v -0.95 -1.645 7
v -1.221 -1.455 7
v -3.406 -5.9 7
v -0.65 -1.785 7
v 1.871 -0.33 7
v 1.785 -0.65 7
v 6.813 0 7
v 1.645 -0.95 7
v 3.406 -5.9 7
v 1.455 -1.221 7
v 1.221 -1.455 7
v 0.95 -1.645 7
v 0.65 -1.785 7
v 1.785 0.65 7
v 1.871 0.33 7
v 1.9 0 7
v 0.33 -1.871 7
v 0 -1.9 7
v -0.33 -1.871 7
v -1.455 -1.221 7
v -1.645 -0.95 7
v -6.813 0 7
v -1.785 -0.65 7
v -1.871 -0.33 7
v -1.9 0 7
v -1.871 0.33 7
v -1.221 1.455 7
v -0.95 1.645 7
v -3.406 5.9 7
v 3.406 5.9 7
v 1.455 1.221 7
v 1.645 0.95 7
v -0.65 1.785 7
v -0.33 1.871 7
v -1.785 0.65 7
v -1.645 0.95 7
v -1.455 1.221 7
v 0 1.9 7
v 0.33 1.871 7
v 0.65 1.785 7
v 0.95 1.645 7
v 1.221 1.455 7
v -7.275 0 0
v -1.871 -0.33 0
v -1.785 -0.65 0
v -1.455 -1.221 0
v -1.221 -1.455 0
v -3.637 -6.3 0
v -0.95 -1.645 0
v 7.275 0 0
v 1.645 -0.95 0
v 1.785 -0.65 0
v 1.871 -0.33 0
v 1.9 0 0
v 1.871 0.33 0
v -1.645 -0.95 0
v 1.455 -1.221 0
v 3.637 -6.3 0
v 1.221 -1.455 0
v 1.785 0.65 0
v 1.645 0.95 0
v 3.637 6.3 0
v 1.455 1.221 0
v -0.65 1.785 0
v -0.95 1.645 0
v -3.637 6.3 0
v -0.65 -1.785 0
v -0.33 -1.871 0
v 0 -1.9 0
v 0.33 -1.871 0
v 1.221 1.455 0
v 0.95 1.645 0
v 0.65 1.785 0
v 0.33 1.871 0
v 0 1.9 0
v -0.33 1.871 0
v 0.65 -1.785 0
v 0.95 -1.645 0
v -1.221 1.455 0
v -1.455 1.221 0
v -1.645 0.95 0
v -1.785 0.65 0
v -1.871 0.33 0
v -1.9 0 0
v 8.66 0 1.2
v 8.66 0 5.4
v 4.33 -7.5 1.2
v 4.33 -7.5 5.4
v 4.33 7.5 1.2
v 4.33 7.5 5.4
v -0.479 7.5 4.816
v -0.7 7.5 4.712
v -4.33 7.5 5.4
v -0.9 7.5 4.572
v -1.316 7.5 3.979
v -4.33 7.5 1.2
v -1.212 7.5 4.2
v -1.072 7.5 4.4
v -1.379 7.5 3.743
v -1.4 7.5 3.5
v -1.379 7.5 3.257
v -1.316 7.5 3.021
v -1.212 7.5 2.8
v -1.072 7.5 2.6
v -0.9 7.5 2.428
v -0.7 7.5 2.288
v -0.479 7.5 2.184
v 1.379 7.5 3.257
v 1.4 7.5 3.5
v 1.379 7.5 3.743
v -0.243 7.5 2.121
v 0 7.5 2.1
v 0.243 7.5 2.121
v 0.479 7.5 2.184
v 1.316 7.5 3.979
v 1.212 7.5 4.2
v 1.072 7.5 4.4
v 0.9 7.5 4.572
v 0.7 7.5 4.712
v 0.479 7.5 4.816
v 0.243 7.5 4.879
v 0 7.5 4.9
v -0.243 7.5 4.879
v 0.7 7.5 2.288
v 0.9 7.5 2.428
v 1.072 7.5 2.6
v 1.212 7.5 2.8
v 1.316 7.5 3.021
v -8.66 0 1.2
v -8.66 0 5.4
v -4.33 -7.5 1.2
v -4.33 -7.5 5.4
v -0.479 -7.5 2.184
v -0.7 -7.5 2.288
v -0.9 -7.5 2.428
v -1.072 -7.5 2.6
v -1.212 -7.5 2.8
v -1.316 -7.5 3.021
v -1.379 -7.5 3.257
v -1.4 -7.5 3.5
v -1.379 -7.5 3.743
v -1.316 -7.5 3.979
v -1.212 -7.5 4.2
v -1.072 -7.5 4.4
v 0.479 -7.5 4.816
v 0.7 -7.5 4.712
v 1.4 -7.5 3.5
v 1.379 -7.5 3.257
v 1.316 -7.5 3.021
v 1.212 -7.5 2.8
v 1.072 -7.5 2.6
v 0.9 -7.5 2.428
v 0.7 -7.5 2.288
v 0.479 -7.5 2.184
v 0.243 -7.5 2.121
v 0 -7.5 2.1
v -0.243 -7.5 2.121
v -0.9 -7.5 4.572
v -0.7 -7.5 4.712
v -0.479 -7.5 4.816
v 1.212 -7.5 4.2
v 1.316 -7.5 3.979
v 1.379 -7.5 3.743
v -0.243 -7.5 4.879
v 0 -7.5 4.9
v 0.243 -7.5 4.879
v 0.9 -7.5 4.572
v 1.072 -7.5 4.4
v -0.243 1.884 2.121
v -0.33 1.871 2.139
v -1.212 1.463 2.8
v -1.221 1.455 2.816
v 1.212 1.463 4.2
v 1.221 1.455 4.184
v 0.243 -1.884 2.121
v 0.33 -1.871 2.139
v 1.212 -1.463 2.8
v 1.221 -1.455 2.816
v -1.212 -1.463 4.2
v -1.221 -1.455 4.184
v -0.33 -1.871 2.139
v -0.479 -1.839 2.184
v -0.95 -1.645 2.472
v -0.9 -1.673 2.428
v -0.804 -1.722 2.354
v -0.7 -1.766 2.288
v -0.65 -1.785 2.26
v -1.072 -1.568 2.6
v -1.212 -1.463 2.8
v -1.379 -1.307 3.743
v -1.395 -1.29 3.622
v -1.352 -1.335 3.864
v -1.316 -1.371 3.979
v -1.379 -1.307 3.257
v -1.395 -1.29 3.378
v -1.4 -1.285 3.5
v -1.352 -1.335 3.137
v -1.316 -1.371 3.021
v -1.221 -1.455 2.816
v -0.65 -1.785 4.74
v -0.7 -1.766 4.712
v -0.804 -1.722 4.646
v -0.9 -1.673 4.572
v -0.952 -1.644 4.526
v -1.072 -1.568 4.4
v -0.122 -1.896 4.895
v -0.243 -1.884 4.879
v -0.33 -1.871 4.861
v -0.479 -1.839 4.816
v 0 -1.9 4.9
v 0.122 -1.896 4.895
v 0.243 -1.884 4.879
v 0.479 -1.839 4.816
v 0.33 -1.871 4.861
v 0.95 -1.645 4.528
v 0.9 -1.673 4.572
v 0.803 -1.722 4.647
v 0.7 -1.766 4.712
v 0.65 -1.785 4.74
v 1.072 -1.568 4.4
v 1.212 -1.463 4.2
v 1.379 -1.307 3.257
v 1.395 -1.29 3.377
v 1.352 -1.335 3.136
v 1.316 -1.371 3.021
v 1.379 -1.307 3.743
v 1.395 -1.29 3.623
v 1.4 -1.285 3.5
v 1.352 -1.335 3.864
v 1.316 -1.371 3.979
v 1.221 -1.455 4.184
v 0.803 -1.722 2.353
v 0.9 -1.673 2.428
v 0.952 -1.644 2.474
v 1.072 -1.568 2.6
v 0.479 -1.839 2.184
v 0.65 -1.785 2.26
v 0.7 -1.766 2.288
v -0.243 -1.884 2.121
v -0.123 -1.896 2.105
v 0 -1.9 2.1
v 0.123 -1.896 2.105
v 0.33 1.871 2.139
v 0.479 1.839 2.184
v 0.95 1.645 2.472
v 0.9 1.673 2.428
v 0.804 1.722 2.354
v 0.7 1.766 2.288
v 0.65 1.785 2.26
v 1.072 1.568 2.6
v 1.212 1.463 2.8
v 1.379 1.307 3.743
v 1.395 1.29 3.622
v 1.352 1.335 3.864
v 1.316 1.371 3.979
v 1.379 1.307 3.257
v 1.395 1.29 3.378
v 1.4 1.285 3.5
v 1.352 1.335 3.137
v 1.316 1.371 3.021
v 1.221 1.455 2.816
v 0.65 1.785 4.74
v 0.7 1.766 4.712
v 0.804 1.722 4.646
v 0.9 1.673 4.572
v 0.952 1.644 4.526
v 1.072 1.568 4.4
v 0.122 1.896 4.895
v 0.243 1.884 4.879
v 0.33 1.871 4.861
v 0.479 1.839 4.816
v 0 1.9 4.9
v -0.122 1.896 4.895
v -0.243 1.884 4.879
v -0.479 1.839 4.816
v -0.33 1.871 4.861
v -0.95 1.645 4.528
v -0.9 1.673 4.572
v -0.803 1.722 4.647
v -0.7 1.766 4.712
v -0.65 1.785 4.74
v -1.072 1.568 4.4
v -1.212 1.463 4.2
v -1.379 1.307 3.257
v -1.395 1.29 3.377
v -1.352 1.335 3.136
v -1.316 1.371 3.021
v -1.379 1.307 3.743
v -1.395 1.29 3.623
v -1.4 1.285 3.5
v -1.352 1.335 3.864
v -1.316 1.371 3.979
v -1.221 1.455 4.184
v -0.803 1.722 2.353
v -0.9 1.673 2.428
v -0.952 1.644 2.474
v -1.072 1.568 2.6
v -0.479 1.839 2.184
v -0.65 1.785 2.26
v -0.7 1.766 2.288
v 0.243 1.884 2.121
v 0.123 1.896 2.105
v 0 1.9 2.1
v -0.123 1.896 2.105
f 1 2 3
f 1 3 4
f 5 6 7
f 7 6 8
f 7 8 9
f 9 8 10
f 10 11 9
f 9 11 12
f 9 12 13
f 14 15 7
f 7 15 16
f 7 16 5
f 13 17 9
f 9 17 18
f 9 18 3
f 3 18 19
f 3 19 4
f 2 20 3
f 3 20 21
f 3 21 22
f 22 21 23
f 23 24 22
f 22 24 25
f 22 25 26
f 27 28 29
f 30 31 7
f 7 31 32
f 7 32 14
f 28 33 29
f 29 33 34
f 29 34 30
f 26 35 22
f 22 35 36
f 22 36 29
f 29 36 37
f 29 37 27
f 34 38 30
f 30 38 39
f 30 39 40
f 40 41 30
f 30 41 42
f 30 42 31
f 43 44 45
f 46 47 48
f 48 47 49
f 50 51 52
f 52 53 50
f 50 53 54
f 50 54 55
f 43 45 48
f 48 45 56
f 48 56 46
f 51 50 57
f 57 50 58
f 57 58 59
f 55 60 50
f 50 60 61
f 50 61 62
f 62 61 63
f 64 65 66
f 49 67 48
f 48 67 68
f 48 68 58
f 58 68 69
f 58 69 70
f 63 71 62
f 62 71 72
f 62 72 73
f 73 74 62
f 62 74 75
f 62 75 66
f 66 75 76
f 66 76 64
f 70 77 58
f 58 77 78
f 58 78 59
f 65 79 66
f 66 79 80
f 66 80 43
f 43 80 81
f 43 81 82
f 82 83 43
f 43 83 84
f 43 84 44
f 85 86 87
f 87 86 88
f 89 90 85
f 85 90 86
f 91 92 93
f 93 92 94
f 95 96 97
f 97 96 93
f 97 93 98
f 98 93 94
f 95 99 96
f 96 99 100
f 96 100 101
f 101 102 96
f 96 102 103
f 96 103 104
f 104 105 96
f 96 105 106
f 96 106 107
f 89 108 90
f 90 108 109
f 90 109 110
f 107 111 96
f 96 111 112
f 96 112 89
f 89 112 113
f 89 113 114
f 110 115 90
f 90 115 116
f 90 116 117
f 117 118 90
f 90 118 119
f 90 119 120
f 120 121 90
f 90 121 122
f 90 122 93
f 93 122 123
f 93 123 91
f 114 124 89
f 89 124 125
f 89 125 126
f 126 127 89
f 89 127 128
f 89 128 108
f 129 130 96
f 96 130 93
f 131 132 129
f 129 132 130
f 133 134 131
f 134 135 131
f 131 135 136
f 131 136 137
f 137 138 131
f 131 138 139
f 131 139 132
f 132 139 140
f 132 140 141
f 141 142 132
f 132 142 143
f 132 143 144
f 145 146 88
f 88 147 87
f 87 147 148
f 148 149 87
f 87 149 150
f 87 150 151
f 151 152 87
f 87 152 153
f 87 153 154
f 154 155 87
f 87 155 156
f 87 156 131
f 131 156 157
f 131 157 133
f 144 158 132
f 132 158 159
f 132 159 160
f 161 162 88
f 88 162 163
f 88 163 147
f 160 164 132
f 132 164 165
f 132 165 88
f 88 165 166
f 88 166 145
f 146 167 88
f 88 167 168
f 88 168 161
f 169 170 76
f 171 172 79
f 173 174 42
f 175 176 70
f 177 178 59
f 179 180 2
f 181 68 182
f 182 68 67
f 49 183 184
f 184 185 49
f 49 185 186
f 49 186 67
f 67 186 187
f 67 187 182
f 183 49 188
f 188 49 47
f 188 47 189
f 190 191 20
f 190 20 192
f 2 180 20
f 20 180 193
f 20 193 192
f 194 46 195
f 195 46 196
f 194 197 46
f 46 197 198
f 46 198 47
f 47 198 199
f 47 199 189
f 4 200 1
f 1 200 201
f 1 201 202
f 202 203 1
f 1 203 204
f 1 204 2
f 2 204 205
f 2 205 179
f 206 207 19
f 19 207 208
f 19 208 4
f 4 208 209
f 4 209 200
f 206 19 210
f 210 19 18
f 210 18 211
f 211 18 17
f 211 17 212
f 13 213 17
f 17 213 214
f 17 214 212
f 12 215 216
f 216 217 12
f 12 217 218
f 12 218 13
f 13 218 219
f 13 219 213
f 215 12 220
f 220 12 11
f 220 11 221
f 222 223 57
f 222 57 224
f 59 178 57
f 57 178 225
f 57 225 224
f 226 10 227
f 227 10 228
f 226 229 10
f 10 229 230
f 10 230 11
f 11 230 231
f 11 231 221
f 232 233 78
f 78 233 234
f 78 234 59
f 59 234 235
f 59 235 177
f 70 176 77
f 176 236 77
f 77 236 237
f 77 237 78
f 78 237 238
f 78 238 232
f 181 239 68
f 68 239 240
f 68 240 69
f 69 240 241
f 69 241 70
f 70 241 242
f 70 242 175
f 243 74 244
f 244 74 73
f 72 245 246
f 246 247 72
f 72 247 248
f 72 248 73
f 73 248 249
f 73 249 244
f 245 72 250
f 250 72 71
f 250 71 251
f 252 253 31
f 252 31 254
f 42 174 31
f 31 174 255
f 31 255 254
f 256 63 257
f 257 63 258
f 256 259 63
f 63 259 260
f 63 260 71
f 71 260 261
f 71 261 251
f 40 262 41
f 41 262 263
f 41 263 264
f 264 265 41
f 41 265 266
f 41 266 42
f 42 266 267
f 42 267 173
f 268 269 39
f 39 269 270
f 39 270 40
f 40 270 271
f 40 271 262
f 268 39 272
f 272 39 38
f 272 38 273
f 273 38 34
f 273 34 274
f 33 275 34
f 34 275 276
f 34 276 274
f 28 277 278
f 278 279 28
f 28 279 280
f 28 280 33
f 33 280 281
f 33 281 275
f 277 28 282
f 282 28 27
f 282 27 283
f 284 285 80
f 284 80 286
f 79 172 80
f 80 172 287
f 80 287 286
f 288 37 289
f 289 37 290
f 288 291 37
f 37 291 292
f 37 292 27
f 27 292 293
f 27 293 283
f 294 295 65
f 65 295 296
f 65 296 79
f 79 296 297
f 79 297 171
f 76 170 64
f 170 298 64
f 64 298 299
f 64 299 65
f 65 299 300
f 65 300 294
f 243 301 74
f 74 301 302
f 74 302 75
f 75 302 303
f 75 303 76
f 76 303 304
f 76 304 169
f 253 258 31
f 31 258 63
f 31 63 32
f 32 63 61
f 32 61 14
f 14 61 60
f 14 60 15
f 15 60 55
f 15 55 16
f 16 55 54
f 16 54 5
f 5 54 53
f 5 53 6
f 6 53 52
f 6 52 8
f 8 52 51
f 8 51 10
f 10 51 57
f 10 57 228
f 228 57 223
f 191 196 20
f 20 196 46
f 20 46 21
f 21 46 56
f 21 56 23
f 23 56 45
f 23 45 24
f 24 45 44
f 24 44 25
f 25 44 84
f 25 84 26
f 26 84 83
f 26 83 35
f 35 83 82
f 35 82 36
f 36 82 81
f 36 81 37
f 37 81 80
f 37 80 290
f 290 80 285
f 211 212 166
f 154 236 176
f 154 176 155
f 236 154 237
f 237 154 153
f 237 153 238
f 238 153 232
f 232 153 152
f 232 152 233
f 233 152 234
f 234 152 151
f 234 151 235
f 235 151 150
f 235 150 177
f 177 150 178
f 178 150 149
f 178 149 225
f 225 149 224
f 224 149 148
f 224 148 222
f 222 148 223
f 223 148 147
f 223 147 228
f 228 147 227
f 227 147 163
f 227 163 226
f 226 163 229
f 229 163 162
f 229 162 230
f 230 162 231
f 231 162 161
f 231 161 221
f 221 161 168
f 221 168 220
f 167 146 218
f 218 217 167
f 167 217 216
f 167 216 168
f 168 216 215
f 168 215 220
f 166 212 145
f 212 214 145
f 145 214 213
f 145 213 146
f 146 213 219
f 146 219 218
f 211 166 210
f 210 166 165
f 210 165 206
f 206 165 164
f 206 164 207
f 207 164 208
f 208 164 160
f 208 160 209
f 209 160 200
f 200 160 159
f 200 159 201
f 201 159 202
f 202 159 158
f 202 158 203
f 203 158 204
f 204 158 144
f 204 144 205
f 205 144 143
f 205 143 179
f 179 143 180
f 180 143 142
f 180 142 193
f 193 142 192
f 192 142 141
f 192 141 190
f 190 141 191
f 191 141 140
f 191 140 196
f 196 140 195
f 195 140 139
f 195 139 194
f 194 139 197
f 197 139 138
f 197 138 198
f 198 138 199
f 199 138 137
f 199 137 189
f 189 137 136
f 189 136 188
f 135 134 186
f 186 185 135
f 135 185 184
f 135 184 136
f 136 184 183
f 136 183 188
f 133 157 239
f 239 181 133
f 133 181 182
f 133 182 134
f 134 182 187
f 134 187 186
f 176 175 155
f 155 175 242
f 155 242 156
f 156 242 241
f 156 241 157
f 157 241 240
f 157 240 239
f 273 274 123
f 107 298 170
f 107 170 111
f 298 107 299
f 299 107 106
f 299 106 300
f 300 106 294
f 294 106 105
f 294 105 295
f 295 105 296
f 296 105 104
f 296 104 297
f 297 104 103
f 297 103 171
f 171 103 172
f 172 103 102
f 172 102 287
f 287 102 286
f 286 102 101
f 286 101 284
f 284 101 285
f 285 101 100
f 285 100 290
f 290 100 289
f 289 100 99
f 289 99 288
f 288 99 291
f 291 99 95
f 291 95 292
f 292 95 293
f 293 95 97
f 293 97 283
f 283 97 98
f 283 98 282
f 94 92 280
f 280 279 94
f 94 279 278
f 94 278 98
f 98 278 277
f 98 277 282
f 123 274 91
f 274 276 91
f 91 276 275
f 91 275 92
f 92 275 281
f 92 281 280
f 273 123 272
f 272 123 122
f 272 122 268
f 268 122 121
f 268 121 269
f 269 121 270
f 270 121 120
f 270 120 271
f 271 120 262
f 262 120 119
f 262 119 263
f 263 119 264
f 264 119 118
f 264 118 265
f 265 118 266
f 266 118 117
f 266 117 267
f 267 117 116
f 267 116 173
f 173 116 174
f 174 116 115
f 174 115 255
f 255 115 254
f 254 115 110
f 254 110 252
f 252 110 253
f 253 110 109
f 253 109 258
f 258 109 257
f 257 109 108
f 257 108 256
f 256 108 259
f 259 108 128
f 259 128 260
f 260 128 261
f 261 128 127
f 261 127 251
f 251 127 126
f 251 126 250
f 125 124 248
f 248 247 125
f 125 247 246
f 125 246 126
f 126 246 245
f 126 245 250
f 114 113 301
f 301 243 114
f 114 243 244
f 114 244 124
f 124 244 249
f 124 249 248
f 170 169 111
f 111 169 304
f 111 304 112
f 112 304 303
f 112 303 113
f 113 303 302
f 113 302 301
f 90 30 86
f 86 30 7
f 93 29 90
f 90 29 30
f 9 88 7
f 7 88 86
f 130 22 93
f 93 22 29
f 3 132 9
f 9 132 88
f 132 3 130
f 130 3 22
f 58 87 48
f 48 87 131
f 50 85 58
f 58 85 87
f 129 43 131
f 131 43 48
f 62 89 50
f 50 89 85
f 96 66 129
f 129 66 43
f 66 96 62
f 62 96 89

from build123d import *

# Parameters (mm, degrees)
SKETCH1_R           = 1.9
BOSS_EXTRUDE1_DEPTH = 7
SKETCH2_R           = 1.4
CUT_EXTRUDE1_DEPTH  = 16
CHAMFER1_SIZE       = 1.6
CHAMFER2_SIZE       = 1.2


with BuildPart() as part:
    # Sketch1 → Boss-Extrude1 (new body)
    with BuildSketch(Plane.XY):
        Polygon((8.660254038, 0), (4.330127019, 7.5), (-4.330127019, 7.5), (-8.660254038, 0), (-4.330127019, -7.5), (4.330127019, -7.5), align=None)
        Circle(SKETCH1_R, mode=Mode.SUBTRACT)
    extrude(amount=BOSS_EXTRUDE1_DEPTH)

    # Sketch2 → Cut-Extrude1 (cut, through all)
    with BuildSketch(Plane.XZ.offset(7.5)):
        with Locations((0, 3.5)):
            Circle(SKETCH2_R)
    extrude(amount=-CUT_EXTRUDE1_DEPTH, mode=Mode.SUBTRACT)

    # Chamfer1
    chamfer1_edges = [part.edges().sort_by_distance(p)[0] for p in [
        (0, 7.5, 7),
        (-6.495190528, 3.75, 7),
        (-6.495190528, -3.75, 7),
        (0, -7.5, 7),
        (6.495190528, -3.75, 7),
        (6.495190528, 3.75, 7),
    ]]
    chamfer(chamfer1_edges, length=CHAMFER1_SIZE)

    # Chamfer2
    chamfer2_edges = [part.edges().sort_by_distance(p)[0] for p in [
        (0, -7.5, 0),
        (-6.495190528, -3.75, 0),
        (-6.495190528, 3.75, 0),
        (0, 7.5, 0),
        (6.495190528, 3.75, 0),
        (6.495190528, -3.75, 0),
    ]]
    chamfer(chamfer2_edges, length=CHAMFER2_SIZE)


solid = part.part
